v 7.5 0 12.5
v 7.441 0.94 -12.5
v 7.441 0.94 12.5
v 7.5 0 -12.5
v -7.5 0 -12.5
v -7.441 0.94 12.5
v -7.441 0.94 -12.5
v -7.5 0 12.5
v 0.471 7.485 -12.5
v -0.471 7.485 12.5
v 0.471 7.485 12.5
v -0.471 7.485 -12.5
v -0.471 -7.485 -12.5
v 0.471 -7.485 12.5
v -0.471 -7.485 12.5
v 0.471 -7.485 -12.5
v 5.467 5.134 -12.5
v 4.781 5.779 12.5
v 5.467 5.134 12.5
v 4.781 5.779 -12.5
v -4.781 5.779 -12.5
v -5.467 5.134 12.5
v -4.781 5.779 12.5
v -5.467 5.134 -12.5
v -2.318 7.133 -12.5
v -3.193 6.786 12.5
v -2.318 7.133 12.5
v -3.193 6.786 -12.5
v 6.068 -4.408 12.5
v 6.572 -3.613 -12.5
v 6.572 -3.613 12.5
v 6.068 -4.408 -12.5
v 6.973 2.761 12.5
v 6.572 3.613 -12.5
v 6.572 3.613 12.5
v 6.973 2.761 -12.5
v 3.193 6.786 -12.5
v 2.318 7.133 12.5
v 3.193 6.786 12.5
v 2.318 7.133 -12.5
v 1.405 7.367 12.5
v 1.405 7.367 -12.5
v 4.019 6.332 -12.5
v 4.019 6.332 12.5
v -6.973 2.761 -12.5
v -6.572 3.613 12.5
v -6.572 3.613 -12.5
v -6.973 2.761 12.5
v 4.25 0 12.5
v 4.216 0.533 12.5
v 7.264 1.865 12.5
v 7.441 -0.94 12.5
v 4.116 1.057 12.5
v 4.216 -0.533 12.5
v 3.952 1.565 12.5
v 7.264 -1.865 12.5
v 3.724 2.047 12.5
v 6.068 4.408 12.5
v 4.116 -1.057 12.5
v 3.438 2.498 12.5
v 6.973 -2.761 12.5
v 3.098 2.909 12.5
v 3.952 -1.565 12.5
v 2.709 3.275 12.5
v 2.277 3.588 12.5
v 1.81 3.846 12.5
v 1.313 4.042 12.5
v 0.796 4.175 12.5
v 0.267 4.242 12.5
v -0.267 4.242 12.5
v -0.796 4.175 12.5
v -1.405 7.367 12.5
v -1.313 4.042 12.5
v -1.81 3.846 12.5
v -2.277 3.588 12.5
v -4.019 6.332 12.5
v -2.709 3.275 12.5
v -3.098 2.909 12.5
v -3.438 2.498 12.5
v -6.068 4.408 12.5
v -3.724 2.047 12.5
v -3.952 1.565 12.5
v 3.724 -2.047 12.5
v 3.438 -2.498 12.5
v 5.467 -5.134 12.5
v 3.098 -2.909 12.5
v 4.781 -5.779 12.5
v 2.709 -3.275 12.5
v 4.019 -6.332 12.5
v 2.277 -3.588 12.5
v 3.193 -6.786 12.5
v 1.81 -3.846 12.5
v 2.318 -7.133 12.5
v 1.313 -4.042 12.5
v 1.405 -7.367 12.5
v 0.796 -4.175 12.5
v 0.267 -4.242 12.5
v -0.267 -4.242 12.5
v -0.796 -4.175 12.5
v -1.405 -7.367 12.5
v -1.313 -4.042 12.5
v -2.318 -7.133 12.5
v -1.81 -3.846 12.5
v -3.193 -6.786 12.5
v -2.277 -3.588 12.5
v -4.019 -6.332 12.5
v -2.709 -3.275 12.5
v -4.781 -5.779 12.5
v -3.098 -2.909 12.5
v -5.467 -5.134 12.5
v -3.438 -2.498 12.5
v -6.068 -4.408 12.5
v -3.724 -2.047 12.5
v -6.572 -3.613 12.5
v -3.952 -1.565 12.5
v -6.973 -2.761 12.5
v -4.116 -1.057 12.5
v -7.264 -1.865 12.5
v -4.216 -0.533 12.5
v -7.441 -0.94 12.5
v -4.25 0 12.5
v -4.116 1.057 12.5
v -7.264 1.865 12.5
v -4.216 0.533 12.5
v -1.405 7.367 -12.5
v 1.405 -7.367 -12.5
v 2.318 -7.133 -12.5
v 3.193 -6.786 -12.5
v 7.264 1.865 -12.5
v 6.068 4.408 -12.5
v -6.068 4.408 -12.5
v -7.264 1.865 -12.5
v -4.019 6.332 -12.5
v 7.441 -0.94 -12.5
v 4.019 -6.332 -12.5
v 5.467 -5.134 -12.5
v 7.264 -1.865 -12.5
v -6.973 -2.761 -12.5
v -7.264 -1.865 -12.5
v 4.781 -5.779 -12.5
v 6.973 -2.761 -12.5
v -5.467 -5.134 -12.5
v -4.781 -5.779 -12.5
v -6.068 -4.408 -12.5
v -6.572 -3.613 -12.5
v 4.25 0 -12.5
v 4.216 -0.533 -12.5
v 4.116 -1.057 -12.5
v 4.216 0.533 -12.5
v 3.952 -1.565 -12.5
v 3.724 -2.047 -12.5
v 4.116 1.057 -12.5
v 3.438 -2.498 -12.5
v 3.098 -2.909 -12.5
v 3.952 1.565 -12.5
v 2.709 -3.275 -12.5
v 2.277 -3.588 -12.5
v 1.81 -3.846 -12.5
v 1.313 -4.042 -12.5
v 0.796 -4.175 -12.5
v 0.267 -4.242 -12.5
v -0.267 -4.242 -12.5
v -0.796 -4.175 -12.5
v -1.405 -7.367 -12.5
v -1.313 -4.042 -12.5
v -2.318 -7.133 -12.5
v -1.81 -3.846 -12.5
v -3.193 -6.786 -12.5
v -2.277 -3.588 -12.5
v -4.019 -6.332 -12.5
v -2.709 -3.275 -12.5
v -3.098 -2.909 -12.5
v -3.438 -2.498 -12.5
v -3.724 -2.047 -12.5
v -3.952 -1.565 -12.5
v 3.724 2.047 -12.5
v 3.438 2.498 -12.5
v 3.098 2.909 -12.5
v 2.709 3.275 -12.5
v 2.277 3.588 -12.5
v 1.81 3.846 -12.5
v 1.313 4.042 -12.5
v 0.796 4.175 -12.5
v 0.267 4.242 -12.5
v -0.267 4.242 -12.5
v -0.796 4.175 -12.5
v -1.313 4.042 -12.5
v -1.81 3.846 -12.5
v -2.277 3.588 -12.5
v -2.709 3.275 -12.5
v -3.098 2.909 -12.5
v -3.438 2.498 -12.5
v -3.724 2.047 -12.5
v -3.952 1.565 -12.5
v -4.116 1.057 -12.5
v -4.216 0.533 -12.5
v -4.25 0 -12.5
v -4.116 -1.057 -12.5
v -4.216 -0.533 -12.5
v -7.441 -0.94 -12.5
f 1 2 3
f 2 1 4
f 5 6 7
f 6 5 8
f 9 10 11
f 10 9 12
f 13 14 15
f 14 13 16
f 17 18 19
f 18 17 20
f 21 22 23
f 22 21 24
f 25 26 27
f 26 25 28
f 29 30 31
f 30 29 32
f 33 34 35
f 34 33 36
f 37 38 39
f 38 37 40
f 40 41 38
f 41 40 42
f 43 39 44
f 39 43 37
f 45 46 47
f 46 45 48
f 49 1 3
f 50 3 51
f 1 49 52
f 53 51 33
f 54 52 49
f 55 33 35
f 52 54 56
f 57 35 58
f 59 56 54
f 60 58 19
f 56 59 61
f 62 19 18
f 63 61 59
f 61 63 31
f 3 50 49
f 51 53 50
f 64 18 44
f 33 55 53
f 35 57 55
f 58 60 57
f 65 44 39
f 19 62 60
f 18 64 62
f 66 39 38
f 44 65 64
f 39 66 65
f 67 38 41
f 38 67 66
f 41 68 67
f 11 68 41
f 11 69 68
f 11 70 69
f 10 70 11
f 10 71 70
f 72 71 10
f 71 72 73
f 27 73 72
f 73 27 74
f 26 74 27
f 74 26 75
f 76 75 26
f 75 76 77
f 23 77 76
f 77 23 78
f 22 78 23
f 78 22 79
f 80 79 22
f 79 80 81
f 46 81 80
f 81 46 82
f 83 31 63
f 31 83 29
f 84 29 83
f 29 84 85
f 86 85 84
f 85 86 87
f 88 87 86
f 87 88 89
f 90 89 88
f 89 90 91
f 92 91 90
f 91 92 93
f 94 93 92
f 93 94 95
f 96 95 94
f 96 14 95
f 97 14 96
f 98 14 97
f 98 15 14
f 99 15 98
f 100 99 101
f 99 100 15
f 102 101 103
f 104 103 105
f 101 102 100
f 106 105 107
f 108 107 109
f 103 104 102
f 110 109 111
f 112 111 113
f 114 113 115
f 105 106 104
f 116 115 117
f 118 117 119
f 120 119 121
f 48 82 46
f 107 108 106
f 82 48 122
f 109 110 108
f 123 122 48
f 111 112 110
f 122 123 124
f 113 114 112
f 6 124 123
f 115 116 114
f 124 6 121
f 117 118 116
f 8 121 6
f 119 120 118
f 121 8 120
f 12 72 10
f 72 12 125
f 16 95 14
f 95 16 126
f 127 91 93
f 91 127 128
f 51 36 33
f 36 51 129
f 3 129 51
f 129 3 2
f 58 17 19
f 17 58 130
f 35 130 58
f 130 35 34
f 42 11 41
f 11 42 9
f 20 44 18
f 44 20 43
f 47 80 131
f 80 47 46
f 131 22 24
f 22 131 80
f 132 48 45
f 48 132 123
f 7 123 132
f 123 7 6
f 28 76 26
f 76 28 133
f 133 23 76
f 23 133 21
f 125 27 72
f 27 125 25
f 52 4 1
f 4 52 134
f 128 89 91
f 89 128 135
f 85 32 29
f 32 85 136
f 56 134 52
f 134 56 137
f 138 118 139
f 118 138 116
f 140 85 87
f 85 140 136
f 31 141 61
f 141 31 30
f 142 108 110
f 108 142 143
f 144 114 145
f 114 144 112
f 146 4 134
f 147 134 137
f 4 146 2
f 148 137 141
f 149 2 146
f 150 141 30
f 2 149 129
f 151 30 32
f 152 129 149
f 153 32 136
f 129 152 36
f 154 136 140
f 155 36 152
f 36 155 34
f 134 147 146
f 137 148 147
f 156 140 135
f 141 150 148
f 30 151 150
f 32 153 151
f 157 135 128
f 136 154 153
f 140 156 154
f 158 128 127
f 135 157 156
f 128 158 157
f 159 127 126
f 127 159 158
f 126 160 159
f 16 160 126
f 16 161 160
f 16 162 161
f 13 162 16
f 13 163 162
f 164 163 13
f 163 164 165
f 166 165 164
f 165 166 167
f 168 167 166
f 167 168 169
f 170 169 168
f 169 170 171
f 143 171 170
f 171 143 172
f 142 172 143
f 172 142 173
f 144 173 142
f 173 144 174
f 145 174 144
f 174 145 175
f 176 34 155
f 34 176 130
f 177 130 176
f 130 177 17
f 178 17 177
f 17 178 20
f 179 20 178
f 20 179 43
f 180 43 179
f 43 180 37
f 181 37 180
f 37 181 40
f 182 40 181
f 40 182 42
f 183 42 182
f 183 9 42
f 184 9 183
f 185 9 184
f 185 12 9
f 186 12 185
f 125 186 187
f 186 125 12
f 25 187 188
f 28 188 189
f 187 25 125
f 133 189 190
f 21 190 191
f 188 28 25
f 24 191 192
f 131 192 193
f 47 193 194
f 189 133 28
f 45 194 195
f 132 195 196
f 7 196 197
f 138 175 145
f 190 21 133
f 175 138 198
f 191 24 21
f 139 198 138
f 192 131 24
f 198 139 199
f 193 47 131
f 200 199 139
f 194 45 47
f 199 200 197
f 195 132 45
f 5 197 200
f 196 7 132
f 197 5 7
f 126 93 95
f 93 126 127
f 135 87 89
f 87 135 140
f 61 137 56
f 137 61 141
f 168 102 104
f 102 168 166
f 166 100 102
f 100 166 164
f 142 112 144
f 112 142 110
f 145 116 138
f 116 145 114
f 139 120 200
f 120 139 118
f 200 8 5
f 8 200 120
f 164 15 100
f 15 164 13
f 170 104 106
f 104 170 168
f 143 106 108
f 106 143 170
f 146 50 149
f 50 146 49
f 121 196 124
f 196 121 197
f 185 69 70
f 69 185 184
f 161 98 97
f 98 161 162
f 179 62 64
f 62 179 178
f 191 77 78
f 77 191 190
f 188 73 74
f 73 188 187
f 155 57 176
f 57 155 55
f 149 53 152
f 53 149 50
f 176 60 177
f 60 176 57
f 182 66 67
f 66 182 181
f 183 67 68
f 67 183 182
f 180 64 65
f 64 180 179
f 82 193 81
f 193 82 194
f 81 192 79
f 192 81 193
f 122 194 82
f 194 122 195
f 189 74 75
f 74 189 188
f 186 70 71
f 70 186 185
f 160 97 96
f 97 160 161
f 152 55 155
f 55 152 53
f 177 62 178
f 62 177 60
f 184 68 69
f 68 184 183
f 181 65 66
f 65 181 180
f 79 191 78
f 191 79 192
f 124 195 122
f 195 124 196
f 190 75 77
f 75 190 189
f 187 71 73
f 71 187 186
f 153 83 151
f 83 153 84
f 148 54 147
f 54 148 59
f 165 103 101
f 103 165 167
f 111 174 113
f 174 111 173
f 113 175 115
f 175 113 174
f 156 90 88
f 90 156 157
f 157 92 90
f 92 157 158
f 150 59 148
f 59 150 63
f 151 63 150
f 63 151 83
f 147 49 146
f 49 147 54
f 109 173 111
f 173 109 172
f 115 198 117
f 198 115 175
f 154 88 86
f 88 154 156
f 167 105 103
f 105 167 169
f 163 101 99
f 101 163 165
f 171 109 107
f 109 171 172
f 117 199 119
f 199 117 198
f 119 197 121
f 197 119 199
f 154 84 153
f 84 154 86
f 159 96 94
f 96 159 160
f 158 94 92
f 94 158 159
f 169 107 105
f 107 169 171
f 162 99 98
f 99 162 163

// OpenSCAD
$fn = 50;


difference() {
	union() {
		translate(v = [0, 0, -12.5000000000]) {
			cylinder(h = 25, r = 7.5000000000);
		}
	}
	union() {
		translate(v = [0, 0, -100.0000000000]) {
			cylinder(h = 200, r = 4.2500000000);
		}
	}
}
